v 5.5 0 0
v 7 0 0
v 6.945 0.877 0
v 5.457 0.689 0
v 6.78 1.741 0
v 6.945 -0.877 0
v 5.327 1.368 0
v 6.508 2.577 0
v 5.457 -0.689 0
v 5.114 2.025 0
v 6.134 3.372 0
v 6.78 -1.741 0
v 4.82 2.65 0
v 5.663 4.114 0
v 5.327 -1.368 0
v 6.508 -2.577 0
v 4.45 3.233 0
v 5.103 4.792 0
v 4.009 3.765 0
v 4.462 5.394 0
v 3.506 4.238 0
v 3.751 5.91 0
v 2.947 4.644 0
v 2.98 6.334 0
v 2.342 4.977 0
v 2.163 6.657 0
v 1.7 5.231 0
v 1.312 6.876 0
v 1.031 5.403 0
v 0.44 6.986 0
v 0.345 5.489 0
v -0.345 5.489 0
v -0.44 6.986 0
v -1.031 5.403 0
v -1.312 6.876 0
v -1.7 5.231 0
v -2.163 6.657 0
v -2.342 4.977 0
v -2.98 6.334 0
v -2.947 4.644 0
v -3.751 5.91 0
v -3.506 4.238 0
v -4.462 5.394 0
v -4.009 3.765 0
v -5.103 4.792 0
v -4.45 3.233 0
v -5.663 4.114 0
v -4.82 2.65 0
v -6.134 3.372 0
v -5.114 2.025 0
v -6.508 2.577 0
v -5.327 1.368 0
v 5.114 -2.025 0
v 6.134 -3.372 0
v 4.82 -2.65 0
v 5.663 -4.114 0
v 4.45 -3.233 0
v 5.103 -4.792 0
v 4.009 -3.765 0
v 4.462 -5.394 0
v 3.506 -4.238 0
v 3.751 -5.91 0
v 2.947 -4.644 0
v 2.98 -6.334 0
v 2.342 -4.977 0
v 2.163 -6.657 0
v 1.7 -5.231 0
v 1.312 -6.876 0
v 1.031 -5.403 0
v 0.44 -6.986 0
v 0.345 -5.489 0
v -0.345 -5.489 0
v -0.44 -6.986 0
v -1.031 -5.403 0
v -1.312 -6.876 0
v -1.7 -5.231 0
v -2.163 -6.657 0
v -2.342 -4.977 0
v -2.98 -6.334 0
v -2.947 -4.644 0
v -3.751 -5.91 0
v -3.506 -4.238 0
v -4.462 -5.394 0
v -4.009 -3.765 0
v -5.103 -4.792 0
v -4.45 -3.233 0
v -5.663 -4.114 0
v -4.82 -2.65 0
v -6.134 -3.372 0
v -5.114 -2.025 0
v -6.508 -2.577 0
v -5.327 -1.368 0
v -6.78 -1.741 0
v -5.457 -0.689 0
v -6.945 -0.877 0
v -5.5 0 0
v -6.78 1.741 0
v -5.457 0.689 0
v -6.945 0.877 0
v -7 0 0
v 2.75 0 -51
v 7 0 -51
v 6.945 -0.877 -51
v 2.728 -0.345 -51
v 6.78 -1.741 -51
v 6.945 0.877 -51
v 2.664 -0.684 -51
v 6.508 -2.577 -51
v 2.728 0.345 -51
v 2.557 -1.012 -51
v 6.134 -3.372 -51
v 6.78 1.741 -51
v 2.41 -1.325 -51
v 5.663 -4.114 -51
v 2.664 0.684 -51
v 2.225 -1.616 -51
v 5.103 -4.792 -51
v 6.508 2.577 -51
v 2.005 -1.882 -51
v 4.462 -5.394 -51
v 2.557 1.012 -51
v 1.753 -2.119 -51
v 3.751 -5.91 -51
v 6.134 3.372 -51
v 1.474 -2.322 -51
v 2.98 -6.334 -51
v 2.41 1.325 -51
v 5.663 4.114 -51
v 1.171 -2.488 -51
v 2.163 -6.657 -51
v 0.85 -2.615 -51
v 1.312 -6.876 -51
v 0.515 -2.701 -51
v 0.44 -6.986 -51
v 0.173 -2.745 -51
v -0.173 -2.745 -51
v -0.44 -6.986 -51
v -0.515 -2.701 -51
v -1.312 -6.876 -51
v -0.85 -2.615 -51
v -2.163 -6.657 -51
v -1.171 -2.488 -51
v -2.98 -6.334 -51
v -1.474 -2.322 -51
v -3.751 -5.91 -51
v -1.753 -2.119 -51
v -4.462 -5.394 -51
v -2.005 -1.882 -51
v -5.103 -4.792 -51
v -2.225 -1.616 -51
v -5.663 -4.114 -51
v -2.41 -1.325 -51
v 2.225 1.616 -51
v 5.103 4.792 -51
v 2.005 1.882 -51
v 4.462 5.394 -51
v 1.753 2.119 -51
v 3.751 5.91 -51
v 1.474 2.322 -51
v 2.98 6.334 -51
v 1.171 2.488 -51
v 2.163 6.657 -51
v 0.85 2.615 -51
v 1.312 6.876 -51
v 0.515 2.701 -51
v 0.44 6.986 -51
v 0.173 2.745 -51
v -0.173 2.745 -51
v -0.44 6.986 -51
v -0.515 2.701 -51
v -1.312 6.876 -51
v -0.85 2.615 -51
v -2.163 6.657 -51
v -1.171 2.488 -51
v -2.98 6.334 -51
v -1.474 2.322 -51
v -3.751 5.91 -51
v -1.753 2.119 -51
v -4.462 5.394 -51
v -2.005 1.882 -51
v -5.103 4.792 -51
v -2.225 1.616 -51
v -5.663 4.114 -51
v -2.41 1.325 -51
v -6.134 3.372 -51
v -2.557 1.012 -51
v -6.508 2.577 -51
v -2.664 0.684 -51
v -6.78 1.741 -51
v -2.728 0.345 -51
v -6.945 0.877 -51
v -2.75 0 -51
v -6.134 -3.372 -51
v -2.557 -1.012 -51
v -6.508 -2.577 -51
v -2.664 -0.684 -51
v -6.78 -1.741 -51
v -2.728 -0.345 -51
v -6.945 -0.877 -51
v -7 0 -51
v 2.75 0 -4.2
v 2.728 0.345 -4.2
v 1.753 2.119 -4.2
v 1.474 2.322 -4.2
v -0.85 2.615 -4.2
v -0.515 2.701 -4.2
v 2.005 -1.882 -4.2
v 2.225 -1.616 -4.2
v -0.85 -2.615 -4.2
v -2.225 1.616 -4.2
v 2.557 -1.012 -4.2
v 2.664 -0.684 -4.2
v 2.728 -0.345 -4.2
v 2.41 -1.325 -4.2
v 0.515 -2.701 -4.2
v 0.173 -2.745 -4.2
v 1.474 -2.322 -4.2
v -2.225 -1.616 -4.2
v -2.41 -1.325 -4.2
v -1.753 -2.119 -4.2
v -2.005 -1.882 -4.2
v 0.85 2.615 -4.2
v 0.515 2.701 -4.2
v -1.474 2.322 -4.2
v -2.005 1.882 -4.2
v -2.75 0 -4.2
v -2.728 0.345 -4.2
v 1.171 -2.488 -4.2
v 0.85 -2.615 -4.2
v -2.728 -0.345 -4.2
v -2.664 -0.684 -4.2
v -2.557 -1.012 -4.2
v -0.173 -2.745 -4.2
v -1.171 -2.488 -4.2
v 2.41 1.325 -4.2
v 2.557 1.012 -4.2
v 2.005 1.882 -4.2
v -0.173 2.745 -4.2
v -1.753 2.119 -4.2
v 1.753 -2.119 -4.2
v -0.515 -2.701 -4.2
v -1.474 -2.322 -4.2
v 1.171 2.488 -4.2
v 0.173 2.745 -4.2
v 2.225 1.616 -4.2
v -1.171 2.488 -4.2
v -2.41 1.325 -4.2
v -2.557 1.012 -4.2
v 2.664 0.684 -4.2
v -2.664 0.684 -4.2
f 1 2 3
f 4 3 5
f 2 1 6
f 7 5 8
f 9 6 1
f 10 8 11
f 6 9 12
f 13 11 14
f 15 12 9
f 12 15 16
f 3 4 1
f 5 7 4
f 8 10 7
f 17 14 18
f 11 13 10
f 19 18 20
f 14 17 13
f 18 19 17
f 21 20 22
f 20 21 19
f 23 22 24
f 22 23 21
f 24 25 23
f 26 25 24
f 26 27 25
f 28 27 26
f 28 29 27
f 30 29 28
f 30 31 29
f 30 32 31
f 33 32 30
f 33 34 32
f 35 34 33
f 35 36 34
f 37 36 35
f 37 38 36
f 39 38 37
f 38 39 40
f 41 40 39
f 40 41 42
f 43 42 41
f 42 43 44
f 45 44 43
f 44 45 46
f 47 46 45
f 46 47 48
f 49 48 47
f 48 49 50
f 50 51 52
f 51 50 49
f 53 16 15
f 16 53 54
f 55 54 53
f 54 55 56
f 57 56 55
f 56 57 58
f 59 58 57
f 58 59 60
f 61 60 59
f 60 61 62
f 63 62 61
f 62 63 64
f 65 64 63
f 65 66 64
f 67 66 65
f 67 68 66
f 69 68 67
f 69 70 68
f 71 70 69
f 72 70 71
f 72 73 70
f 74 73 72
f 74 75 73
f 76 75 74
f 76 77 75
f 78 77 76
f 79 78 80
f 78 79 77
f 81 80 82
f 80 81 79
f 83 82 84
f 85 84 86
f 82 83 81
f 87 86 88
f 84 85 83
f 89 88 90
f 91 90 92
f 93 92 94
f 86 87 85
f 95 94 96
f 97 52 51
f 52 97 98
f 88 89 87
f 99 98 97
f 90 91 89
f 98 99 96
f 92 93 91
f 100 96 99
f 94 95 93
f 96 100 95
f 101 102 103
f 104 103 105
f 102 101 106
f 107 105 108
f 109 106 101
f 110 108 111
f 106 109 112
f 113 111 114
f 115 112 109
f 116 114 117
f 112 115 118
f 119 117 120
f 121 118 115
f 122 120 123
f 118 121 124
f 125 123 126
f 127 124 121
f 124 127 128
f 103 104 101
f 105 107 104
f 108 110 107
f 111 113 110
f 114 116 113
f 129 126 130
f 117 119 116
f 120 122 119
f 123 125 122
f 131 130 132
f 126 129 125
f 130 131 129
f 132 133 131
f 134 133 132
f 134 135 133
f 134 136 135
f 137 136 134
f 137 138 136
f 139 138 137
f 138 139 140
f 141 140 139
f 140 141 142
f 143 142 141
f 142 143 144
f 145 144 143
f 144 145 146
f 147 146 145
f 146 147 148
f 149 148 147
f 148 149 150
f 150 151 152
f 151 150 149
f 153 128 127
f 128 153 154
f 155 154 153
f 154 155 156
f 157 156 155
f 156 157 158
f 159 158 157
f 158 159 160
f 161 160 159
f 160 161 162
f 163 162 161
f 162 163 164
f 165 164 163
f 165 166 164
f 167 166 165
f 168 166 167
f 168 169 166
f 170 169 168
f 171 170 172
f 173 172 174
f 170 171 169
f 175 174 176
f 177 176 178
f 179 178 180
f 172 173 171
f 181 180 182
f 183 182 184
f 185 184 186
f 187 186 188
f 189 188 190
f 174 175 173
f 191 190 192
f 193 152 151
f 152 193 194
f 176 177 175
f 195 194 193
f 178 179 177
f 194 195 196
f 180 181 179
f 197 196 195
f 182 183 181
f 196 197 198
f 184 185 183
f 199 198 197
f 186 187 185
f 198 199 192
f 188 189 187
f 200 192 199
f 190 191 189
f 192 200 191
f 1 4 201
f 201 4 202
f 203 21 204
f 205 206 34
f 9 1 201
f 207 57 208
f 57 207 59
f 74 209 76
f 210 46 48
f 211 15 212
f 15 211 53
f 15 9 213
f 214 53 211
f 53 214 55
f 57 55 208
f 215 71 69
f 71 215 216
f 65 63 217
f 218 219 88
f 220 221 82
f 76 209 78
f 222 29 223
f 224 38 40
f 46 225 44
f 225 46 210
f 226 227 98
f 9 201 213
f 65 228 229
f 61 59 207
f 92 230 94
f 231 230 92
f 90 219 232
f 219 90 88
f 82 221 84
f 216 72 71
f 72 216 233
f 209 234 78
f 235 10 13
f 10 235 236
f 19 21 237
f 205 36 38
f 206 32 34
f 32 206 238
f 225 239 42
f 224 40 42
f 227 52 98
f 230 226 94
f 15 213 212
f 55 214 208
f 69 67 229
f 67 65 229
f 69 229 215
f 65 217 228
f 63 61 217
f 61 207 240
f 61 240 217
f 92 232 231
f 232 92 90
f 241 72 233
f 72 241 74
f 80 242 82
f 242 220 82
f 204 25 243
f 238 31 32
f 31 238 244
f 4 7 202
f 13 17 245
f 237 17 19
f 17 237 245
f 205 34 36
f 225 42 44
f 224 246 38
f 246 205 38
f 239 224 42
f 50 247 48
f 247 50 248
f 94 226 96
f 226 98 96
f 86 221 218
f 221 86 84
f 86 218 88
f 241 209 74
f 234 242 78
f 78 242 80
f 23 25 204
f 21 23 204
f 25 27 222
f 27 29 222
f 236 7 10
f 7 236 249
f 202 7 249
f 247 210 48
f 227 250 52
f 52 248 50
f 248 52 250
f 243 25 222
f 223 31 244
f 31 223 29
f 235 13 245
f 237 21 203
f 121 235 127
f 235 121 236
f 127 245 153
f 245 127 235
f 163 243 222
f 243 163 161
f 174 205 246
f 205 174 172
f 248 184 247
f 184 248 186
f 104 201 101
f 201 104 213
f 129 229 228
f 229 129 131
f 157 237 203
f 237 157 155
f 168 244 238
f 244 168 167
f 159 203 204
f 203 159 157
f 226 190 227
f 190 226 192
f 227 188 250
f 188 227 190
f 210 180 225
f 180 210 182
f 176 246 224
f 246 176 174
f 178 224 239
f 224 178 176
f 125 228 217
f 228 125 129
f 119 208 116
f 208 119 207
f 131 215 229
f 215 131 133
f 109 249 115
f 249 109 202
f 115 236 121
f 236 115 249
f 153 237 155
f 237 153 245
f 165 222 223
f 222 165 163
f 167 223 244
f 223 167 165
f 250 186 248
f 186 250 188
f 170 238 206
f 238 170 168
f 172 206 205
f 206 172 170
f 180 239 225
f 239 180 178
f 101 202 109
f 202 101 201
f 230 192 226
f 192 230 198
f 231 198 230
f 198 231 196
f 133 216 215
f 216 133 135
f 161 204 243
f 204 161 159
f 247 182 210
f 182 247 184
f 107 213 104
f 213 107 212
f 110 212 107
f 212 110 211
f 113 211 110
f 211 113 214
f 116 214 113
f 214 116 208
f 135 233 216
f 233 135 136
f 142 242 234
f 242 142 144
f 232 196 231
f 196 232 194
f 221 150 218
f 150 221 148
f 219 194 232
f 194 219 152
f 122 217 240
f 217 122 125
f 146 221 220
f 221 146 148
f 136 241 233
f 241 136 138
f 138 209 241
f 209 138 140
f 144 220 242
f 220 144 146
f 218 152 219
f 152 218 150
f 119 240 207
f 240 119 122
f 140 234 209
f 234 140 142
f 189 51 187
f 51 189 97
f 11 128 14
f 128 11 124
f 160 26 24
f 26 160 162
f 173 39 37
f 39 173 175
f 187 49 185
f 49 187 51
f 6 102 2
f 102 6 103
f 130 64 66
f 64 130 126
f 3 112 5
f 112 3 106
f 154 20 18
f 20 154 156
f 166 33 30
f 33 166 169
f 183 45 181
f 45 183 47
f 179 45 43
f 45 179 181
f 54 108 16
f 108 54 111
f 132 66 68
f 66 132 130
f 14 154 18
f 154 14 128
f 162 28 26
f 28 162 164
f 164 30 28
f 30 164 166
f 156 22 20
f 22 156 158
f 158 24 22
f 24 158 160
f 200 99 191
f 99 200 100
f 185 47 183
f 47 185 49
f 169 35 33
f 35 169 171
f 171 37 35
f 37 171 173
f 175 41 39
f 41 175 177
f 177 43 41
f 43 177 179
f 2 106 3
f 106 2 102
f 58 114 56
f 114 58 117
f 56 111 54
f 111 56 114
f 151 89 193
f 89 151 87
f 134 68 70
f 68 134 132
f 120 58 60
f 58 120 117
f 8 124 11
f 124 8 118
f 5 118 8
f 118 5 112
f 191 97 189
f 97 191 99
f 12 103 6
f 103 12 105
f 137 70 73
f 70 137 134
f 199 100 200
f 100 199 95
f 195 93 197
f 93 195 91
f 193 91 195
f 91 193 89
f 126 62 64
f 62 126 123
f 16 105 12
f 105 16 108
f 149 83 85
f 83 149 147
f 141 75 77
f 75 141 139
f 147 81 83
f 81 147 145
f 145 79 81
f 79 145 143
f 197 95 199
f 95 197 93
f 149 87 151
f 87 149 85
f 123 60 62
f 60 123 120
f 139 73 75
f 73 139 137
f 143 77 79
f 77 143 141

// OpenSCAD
$fn = 50;


difference() {
	union() {
		translate(v = [0, 0, -51.0000000000]) {
			cylinder(h = 51, r = 7.0000000000);
		}
		cylinder(h = 0, r = 13.0000000000);
	}
	union() {
		translate(v = [0, 0, 0]) {
			rotate(a = [0, 0, 0]) {
				difference() {
					union() {
						#translate(v = [0, 0, -51.0000000000]) {
							cylinder(h = 51, r = 2.2500000000);
						}
						#translate(v = [0, 0, -4.2000000000]) {
							cylinder(h = 4.2000000000, r1 = 2.7500000000, r2 = 5.5000000000);
						}
						#translate(v = [0, 0, -51.0000000000]) {
							cylinder(h = 51, r = 2.7500000000);
						}
						#translate(v = [0, 0, -51.0000000000]) {
							cylinder(h = 51, r = 2.2500000000);
						}
					}
					union();
				}
			}
		}
	}
}
